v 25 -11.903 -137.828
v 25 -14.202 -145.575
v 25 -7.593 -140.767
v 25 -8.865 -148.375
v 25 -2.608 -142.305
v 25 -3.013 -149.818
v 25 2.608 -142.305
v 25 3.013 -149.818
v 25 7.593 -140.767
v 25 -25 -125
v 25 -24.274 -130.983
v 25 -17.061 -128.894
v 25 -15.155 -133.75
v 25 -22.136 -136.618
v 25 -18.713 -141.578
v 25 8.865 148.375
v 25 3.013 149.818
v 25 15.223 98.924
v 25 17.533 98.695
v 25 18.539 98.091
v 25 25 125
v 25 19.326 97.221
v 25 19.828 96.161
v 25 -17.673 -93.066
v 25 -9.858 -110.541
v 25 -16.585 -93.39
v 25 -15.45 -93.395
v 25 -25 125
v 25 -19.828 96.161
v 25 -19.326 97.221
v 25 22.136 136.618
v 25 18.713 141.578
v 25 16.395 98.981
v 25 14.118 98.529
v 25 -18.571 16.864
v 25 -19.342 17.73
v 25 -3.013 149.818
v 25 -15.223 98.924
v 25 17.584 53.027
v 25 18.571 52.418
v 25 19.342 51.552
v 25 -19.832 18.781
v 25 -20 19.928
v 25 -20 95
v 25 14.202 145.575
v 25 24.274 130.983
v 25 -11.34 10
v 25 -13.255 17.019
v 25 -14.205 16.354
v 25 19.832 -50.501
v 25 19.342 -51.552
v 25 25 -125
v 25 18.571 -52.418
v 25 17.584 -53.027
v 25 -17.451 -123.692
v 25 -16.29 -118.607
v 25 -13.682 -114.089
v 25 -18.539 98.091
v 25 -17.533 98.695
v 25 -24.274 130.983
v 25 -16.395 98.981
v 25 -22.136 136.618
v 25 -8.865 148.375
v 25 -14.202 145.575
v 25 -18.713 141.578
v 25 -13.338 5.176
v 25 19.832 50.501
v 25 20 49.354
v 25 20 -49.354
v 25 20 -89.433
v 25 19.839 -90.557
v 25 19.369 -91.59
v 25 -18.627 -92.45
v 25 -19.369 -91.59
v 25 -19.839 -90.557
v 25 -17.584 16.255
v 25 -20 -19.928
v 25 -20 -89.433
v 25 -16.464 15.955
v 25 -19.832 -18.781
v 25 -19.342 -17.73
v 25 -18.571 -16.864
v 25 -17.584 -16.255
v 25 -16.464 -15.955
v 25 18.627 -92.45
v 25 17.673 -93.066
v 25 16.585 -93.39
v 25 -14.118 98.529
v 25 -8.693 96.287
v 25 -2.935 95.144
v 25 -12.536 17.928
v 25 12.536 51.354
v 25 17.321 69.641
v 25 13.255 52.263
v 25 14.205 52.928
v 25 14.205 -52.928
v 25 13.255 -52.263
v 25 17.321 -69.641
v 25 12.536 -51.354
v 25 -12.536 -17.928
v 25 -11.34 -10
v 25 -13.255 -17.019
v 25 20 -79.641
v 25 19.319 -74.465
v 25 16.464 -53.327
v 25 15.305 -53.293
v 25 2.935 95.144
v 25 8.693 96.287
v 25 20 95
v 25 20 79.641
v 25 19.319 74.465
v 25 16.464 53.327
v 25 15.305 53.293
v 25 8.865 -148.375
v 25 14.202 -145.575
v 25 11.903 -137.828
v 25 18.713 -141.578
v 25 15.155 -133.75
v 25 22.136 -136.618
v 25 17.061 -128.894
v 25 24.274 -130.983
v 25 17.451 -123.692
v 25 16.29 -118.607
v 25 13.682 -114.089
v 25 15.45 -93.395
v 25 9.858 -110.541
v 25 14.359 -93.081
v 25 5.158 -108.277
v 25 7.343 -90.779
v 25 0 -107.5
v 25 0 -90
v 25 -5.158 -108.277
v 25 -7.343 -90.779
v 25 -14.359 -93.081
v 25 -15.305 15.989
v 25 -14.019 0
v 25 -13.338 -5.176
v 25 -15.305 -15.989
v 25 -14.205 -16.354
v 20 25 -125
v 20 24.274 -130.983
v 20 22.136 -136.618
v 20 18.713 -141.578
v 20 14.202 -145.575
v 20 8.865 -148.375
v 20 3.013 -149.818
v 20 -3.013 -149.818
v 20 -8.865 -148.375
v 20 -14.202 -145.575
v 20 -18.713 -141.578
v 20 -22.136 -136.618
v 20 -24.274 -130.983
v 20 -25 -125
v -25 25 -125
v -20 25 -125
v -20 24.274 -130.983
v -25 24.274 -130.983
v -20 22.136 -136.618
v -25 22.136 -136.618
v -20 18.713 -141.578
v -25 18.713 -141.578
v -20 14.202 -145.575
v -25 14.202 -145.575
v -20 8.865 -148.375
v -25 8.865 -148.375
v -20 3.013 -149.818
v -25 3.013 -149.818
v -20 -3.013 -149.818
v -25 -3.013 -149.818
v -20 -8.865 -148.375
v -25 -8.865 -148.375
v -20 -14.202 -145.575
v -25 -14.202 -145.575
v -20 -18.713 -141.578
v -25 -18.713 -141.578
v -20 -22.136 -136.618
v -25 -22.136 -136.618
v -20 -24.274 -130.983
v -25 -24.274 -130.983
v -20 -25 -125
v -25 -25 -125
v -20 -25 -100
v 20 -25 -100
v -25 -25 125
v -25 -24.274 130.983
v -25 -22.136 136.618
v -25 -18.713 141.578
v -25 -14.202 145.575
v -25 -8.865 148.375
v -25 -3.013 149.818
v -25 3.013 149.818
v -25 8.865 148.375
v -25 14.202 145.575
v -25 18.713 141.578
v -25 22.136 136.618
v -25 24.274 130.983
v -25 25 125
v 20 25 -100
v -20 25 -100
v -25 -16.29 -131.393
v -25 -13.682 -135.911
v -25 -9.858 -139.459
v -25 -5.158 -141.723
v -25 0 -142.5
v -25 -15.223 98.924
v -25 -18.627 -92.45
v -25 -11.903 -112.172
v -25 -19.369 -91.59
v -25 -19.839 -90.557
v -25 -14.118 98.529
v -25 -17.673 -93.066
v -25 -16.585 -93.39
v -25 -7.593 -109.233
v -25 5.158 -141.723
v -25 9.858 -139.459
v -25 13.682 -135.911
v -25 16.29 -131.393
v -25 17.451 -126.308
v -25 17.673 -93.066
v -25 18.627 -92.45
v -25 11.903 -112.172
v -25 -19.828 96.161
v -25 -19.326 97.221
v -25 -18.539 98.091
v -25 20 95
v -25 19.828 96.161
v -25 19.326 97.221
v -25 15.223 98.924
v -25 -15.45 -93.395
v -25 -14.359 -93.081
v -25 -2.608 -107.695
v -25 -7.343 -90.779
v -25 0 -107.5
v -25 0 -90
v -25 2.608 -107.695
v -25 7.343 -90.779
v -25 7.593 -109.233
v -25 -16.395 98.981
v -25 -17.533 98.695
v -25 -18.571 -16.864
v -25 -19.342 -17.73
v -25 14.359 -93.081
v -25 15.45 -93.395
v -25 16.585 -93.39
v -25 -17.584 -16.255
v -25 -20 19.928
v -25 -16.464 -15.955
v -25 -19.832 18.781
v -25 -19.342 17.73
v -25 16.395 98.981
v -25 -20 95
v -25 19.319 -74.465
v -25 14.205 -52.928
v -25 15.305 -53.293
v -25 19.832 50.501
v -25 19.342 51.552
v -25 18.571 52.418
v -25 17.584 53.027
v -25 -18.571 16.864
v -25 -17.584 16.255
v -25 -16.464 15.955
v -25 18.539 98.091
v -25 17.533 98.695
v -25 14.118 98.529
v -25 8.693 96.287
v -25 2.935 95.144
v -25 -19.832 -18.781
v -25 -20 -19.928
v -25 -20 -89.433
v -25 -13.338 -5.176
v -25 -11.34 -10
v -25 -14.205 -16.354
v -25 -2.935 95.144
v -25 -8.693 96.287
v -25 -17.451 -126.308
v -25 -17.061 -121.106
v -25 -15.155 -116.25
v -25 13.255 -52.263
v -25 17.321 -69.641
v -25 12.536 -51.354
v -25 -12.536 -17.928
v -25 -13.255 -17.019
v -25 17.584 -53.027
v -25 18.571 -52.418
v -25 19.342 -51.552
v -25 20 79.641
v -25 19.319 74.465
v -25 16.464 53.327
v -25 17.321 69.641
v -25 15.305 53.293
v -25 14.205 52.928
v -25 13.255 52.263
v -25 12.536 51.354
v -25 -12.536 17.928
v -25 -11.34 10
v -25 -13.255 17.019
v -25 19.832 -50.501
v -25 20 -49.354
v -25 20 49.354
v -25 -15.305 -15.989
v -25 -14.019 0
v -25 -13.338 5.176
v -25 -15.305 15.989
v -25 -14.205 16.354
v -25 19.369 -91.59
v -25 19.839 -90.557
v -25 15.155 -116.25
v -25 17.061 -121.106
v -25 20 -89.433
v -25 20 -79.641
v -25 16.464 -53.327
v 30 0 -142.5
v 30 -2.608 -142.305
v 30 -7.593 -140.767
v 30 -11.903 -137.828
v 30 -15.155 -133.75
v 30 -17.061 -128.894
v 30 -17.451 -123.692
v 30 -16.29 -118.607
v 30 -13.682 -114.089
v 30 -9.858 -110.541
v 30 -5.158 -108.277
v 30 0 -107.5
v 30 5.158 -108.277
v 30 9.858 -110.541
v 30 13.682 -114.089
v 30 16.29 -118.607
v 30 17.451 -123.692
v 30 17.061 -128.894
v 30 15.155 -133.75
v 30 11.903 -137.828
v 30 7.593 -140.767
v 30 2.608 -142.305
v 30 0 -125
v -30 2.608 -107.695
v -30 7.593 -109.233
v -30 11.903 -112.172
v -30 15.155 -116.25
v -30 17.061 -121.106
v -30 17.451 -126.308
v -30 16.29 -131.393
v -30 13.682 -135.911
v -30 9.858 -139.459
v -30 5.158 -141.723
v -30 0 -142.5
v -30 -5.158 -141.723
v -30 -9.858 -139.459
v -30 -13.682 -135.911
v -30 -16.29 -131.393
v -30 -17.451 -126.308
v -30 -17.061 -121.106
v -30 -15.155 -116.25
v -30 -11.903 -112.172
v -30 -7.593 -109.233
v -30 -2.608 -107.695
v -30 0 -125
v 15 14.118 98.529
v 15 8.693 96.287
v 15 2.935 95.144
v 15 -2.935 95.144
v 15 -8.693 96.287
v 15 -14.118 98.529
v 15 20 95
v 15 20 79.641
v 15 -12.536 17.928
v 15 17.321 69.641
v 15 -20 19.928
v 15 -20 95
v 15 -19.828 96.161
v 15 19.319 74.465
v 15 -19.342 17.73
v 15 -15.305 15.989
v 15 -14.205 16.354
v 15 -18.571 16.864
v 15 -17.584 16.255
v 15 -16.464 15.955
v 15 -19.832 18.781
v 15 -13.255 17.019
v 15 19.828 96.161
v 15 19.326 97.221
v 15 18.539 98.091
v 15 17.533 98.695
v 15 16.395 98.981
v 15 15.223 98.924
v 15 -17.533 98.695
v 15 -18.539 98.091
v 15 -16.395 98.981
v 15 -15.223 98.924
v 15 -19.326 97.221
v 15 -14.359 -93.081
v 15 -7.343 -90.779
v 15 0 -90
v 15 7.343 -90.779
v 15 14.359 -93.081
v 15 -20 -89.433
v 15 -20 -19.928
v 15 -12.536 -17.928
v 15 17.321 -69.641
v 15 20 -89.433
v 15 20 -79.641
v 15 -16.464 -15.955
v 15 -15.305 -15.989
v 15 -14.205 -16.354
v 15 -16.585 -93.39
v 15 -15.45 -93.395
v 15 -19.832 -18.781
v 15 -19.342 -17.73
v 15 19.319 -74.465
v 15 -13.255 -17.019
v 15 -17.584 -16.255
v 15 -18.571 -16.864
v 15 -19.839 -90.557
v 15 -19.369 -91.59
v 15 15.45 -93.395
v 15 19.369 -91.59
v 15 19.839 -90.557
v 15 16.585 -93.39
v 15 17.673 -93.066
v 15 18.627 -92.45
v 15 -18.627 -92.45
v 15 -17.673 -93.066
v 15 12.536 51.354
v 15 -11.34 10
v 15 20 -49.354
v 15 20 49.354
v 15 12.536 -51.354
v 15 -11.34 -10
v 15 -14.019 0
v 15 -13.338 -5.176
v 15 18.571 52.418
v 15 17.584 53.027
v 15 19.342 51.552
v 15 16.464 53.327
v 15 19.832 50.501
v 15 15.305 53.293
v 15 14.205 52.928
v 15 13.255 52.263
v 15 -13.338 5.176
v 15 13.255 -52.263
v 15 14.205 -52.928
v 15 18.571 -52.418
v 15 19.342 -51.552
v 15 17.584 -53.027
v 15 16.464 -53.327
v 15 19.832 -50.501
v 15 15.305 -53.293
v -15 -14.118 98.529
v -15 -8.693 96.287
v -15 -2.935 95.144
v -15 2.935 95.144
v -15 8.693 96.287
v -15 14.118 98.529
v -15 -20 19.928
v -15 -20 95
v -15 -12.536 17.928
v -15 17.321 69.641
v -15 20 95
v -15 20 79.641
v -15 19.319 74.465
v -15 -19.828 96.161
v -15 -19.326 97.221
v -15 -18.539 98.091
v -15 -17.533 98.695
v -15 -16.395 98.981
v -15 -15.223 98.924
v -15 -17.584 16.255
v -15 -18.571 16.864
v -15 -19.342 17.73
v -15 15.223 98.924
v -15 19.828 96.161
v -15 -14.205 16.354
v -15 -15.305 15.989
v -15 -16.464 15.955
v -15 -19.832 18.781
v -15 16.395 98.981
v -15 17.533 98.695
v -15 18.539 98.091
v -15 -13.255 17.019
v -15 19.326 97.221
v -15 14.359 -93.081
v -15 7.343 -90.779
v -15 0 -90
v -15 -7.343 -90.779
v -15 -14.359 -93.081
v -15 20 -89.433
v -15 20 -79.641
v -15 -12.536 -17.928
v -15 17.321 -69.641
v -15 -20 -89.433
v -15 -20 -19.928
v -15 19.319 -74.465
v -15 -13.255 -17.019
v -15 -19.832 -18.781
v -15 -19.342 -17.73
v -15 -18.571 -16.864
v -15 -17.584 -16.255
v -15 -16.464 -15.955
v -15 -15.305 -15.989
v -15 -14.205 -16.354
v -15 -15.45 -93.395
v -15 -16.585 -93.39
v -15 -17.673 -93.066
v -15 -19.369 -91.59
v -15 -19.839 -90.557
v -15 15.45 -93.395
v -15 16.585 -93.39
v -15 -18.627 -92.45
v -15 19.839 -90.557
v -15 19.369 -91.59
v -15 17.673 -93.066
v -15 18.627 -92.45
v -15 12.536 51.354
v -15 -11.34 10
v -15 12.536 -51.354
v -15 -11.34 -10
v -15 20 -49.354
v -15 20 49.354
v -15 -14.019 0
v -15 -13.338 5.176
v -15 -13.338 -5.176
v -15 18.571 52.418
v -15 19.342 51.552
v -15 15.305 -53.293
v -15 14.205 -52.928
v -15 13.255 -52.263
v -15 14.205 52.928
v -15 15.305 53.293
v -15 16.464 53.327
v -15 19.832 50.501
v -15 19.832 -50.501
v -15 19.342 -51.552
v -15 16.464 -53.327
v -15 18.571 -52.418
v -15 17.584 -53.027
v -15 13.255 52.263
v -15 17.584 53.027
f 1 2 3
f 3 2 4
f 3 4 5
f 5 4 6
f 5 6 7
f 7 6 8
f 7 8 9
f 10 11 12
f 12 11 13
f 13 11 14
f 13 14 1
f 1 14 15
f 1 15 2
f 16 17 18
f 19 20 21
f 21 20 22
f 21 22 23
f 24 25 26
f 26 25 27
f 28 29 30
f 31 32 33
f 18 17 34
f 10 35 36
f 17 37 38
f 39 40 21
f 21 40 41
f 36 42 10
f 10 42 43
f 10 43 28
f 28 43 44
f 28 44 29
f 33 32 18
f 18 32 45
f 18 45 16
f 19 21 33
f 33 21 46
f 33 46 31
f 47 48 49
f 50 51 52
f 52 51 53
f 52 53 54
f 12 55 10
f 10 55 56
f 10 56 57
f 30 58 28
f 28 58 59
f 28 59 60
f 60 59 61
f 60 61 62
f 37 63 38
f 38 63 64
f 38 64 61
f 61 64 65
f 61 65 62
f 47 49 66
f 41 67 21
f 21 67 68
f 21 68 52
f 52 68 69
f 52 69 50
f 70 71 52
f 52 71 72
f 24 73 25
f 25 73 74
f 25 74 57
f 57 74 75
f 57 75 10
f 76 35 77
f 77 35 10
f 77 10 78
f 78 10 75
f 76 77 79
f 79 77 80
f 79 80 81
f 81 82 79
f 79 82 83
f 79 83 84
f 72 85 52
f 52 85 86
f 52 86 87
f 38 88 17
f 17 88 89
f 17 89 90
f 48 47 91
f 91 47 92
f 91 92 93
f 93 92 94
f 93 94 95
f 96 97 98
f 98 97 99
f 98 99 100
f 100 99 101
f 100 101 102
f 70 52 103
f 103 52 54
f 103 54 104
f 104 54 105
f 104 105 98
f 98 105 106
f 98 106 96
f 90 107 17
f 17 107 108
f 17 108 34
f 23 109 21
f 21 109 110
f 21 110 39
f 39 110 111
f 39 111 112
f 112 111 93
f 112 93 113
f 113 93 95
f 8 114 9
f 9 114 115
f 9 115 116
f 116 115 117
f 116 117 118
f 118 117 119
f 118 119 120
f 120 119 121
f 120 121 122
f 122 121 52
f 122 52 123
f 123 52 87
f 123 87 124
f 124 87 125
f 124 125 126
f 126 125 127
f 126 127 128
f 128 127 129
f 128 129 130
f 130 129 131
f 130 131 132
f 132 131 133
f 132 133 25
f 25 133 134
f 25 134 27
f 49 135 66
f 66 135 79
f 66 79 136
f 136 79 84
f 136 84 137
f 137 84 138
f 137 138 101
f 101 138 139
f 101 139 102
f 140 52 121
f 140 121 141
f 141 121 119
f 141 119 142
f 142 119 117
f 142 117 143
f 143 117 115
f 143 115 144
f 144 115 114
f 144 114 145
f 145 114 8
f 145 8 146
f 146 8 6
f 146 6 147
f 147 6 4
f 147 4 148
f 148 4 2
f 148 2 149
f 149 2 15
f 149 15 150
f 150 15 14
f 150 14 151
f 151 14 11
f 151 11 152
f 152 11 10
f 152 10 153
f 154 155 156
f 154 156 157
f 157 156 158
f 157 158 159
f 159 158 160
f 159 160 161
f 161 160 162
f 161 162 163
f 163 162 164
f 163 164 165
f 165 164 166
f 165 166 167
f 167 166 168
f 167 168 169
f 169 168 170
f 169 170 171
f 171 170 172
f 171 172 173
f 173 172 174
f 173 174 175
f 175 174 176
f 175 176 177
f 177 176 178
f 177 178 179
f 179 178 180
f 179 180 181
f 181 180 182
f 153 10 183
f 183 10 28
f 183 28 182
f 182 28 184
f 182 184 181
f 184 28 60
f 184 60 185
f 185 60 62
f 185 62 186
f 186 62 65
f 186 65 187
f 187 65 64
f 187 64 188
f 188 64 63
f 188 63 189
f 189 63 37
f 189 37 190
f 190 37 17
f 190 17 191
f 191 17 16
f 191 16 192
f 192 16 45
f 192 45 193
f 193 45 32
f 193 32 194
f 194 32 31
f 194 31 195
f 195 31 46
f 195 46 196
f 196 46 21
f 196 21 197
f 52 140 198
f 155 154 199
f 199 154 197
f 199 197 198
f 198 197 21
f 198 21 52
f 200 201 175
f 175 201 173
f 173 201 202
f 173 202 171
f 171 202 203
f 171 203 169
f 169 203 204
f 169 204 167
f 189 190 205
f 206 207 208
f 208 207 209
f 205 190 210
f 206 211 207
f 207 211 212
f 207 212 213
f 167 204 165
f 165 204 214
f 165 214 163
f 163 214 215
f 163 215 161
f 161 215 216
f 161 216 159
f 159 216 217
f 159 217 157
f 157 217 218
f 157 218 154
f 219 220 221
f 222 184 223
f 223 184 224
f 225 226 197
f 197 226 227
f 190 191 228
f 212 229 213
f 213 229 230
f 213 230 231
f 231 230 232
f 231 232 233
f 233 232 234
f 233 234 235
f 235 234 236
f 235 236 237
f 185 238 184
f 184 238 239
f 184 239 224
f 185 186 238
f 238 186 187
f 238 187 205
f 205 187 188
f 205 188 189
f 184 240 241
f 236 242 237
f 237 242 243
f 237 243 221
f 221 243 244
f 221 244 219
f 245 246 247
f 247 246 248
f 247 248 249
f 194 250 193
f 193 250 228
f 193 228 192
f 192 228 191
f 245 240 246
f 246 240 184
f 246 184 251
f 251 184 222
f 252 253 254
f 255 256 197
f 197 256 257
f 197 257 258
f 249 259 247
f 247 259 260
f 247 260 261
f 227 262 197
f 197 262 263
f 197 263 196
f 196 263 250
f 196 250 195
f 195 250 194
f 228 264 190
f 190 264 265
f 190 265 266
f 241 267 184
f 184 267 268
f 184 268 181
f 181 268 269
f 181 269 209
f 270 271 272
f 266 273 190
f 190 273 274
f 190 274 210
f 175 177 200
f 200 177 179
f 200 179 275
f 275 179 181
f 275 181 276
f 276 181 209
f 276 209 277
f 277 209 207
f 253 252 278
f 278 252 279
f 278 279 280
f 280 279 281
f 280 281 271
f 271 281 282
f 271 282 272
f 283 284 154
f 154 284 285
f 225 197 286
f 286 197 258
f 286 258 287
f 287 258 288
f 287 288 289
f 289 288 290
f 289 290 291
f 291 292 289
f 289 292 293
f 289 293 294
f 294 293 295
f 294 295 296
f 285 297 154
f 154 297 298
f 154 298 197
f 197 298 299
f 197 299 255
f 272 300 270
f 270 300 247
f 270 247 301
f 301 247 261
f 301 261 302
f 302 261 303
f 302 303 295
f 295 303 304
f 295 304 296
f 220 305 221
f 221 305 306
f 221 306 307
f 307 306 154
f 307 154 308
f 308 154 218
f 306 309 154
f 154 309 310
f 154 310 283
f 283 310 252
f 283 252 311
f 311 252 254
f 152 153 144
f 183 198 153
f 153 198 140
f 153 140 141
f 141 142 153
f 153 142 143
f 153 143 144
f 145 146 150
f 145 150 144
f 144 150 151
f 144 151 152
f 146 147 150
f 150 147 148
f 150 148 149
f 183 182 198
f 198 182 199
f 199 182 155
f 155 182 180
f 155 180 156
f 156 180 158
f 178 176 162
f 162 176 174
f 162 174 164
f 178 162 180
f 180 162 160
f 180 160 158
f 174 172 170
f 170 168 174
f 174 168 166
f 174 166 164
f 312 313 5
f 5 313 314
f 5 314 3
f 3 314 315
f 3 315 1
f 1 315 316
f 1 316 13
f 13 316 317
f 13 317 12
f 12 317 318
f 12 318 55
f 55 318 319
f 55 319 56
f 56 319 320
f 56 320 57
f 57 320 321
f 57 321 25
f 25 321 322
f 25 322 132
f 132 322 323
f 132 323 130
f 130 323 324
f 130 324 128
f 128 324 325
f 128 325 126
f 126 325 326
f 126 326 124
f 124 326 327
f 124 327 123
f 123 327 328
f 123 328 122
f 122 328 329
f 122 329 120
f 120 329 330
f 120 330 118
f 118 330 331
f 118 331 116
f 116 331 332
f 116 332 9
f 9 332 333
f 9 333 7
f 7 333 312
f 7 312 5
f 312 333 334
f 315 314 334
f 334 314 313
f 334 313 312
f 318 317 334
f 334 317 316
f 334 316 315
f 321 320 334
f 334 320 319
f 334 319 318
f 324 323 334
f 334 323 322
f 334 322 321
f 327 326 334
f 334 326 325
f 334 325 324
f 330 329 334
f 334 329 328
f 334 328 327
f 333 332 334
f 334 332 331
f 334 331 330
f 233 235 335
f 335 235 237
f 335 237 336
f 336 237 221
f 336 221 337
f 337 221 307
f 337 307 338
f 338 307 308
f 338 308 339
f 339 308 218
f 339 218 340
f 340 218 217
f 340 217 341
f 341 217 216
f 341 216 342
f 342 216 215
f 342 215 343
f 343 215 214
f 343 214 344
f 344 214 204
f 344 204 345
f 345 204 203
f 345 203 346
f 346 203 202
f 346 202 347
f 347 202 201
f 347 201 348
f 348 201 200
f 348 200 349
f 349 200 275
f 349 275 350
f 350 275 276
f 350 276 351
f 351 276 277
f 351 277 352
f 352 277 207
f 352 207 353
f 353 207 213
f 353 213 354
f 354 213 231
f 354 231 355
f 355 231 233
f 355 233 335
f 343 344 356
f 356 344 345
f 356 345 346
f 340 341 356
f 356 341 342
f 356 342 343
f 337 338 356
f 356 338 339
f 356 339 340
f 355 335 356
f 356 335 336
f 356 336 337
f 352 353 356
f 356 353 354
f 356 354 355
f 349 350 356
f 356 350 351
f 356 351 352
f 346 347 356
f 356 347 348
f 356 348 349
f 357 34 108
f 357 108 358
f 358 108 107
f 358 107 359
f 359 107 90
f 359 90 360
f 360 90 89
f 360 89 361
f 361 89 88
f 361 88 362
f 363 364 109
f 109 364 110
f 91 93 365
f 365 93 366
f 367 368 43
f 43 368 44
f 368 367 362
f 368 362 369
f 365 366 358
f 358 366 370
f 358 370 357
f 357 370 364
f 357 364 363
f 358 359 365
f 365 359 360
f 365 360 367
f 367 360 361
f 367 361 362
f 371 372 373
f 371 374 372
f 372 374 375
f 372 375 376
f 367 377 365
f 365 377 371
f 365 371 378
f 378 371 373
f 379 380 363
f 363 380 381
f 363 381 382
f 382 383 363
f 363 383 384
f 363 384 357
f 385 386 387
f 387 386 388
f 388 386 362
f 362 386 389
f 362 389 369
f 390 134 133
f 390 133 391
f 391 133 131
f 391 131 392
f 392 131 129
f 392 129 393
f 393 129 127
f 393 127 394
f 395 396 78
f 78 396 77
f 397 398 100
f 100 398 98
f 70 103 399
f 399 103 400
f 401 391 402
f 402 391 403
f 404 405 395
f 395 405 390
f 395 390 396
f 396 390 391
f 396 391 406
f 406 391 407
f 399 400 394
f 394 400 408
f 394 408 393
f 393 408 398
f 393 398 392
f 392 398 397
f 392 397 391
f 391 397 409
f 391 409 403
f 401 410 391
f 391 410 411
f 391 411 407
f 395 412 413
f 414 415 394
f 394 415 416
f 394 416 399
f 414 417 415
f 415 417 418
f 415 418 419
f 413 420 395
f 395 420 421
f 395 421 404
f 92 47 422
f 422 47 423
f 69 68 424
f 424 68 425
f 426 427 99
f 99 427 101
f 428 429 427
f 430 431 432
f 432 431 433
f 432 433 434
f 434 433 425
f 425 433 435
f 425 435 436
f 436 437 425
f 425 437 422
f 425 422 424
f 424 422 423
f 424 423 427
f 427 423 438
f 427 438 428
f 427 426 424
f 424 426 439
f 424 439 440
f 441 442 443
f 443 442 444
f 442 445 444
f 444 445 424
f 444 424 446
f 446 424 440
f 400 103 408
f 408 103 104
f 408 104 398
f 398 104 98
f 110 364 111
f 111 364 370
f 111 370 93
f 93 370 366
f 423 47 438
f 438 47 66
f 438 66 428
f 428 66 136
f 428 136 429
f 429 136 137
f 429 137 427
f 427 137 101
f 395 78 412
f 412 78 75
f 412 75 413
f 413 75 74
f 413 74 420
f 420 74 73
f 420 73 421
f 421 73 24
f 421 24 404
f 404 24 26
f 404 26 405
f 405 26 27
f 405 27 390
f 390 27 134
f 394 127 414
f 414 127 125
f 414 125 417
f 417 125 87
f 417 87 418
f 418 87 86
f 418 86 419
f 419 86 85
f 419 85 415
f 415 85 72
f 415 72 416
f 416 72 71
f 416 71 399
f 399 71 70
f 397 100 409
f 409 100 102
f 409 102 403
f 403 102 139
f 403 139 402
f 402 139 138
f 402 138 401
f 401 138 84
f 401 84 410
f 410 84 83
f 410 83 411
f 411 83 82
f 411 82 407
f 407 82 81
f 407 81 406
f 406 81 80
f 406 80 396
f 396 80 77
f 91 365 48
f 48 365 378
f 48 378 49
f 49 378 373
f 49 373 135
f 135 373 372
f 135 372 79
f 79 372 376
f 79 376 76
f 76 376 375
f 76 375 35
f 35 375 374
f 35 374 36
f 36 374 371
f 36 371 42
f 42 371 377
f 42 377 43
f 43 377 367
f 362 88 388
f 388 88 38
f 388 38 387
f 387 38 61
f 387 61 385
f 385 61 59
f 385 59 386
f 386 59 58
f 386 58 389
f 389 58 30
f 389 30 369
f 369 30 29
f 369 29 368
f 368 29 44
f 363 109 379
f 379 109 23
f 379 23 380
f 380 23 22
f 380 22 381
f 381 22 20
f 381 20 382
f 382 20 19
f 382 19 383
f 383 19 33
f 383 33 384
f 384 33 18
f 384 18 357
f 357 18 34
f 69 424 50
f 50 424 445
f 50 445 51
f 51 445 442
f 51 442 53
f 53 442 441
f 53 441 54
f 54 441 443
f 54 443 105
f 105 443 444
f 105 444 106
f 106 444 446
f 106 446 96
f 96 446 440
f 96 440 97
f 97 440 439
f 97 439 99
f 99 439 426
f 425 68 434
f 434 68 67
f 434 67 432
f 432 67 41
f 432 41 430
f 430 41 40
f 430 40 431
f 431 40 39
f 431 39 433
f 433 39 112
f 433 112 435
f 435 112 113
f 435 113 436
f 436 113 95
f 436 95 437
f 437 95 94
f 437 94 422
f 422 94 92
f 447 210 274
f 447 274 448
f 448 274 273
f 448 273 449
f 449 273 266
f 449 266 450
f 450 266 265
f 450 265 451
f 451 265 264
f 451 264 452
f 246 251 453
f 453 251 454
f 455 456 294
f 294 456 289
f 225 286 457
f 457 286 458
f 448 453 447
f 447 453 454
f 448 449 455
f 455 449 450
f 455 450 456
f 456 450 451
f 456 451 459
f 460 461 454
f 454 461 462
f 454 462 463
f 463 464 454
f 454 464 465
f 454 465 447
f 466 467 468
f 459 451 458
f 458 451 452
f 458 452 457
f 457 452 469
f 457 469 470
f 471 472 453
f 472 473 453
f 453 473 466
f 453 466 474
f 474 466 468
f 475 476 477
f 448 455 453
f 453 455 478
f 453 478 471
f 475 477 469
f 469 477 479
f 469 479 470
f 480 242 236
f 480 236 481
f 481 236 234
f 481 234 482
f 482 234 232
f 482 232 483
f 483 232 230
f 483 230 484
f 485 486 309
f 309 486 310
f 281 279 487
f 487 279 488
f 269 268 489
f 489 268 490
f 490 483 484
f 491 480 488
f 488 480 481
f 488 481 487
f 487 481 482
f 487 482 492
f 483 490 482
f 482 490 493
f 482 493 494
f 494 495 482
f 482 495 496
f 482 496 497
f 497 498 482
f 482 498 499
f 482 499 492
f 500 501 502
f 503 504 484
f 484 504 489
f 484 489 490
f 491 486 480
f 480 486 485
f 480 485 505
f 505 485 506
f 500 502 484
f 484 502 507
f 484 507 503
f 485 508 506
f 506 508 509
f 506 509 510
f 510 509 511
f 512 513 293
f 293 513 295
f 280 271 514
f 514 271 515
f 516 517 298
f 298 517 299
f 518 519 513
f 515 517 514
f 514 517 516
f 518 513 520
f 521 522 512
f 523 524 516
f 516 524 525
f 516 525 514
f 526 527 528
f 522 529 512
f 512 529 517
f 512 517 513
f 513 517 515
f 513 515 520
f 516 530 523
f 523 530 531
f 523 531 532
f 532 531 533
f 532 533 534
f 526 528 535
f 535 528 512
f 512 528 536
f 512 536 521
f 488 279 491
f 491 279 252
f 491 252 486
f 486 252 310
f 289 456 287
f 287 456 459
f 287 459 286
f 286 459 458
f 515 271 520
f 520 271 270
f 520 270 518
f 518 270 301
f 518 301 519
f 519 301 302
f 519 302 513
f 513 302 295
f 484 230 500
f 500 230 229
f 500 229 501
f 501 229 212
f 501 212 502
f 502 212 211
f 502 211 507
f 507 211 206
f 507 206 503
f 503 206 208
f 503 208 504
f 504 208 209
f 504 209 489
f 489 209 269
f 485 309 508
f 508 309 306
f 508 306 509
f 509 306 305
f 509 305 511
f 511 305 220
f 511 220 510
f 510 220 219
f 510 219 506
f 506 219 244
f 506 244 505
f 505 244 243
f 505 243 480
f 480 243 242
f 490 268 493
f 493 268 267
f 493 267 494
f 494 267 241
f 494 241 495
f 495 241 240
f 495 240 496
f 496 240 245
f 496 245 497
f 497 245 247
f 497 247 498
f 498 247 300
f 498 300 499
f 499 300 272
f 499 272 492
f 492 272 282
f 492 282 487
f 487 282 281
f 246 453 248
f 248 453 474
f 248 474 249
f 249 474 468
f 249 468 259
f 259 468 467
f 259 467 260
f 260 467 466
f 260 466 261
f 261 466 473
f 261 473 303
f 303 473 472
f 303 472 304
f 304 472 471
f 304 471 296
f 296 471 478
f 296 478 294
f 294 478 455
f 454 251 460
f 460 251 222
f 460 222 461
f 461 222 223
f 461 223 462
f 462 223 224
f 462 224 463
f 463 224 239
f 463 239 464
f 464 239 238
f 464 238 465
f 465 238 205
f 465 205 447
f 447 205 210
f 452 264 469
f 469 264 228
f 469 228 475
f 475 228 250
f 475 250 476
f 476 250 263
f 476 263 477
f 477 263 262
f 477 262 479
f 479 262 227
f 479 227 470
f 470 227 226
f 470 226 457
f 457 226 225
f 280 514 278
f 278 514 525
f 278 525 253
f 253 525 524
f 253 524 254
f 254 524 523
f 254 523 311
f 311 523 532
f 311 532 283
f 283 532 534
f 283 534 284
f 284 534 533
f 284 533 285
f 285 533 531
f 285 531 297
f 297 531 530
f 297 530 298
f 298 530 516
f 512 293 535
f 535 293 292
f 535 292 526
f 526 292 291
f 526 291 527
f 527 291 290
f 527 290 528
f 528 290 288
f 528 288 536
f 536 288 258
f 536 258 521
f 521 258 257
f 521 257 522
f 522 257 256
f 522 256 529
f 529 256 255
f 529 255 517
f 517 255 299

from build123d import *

# Parameters (mm, degrees)
BOSS_EXTRUDE1_DEPTH      = 25
BOSS_EXTRUDE1_DEPTH_BACK = 25
CUT_EXTRUDE1_DEPTH       = 161.078105936
CUT_EXTRUDE1_DEPTH_BACK  = 161.078105936
SKETCH2_W                = 40
SKETCH2_H                = 100
SKETCH3_R                = 17.5
BOSS_EXTRUDE2_DEPTH      = 5
CUT_EXTRUDE2_DEPTH       = 10
FILLET1_R                = 20
FILLET2_R                = 4
FILLET1_OF_MIRROR2_R     = 20
FILLET2_OF_MIRROR2_R     = 4


with BuildPart() as part:
    # Sketch1 → Boss-Extrude1 (new, two sides: drawn at the far end of the back side and taken through both)
    with BuildSketch(Plane(origin=(0, 0, 0), x_dir=(0, 0, -1), z_dir=(1, 0, 0)).offset(-BOSS_EXTRUDE1_DEPTH_BACK)):
        with BuildLine():
            Line((-125, -25), (125, -25))
            ThreePointArc((125, -25), (150, 0), (125, 25))
            Line((125, 25), (-125, 25))
            ThreePointArc((-125, 25), (-150, 0), (-125, -25))
        make_face()
    extrude(amount=BOSS_EXTRUDE1_DEPTH + BOSS_EXTRUDE1_DEPTH_BACK)

    # Sketch2 → Cut-Extrude1 (cut, two sides: drawn at the far end of the back side and taken through both)
    with BuildSketch(Plane(origin=(0, 25, 0), x_dir=(1, 0, 0), z_dir=(0, 1, 0)).offset(-CUT_EXTRUDE1_DEPTH_BACK)):
        with Locations((0, 150)):
            Rectangle(SKETCH2_W, SKETCH2_H)
    extrude(amount=CUT_EXTRUDE1_DEPTH + CUT_EXTRUDE1_DEPTH_BACK, mode=Mode.SUBTRACT)

    # Sketch3 → Boss-Extrude2 (add)
    with BuildSketch(Plane(origin=(25, 0, 0), x_dir=(0, 0, -1), z_dir=(1, 0, 0))):
        with Locations((125, 0)):
            Circle(SKETCH3_R)
    boss_extrude2 = extrude(amount=BOSS_EXTRUDE2_DEPTH)

    # Mirror1: Boss-Extrude2 across plane
    add(boss_extrude2.mirror(Plane(origin=(0, 0, 0), x_dir=(0, 0, 1), z_dir=(1, 0, 0))))

    # Sketch4 → Cut-Extrude2 (cut)
    with BuildSketch(Plane(origin=(25, 0, 0), x_dir=(0, 0, -1), z_dir=(1, 0, 0))):
        with BuildLine():
            ThreePointArc((96.277186767, -20), (90, 0), (96.277186767, 20))
            Line((96.277186767, 20), (74.282032303, 20))
            Line((74.282032303, 20), (5, -20))
            Line((5, -20), (96.277186767, -20))
        make_face()
        Polygon((0, -17.113248654), (64.282032303, 20), (-64.282032303, 20), align=None)
        with BuildLine():
            Line((-102.639320225, -20), (-5, -20))
            Line((-5, -20), (-74.282032303, 20))
            Line((-74.282032303, 20), (-102.639320225, 20))
            ThreePointArc((-102.639320225, 20), (-95, 0), (-102.639320225, -20))
        make_face()
    cut_extrude2 = extrude(amount=-CUT_EXTRUDE2_DEPTH, mode=Mode.SUBTRACT)

    # Fillet1
    fillet1_edges = [part.edges().sort_by_distance(p)[0] for p in [
        (20, -17.113248654, 0),
        (20, 20, -74.282032303),
        (20, 20, 74.282032303),
    ]]
    fillet(fillet1_edges, radius=FILLET1_R)

    # Fillet2
    fillet2_edges = [part.edges().sort_by_distance(p)[0] for p in [
        (20, -20, -96.277186767),
        (20, 20, -96.277186767),
        (20, -20, -5),
        (20, -20, 5),
        (20, -20, 102.639320225),
        (20, 20, 102.639320225),
        (20, 20, -64.282032303),
        (20, 20, 64.282032303),
    ]]
    fillet(fillet2_edges, radius=FILLET2_R)

    # Mirror2: Cut-Extrude2 across plane
    add(cut_extrude2.mirror(Plane(origin=(0, 0, 0), x_dir=(0, 0, 1), z_dir=(1, 0, 0))), mode=Mode.SUBTRACT)

    # Fillet1 of Mirror2
    fillet1_of_mirror2_edges = [part.edges().sort_by_distance(p)[0] for p in [
        (-20, -17.113248654, 0),
        (-20, 20, -74.282032303),
        (-20, 20, 74.282032303),
    ]]
    fillet(fillet1_of_mirror2_edges, radius=FILLET1_OF_MIRROR2_R)

    # Fillet2 of Mirror2
    fillet2_of_mirror2_edges = [part.edges().sort_by_distance(p)[0] for p in [
        (-20, -20, -96.277186767),
        (-20, 20, -96.277186767),
        (-20, -20, -5),
        (-20, -20, 5),
        (-20, -20, 102.639320225),
        (-20, 20, 102.639320225),
        (-20, 20, -64.282032303),
        (-20, 20, 64.282032303),
    ]]
    fillet(fillet2_of_mirror2_edges, radius=FILLET2_OF_MIRROR2_R)


solid = part.part
